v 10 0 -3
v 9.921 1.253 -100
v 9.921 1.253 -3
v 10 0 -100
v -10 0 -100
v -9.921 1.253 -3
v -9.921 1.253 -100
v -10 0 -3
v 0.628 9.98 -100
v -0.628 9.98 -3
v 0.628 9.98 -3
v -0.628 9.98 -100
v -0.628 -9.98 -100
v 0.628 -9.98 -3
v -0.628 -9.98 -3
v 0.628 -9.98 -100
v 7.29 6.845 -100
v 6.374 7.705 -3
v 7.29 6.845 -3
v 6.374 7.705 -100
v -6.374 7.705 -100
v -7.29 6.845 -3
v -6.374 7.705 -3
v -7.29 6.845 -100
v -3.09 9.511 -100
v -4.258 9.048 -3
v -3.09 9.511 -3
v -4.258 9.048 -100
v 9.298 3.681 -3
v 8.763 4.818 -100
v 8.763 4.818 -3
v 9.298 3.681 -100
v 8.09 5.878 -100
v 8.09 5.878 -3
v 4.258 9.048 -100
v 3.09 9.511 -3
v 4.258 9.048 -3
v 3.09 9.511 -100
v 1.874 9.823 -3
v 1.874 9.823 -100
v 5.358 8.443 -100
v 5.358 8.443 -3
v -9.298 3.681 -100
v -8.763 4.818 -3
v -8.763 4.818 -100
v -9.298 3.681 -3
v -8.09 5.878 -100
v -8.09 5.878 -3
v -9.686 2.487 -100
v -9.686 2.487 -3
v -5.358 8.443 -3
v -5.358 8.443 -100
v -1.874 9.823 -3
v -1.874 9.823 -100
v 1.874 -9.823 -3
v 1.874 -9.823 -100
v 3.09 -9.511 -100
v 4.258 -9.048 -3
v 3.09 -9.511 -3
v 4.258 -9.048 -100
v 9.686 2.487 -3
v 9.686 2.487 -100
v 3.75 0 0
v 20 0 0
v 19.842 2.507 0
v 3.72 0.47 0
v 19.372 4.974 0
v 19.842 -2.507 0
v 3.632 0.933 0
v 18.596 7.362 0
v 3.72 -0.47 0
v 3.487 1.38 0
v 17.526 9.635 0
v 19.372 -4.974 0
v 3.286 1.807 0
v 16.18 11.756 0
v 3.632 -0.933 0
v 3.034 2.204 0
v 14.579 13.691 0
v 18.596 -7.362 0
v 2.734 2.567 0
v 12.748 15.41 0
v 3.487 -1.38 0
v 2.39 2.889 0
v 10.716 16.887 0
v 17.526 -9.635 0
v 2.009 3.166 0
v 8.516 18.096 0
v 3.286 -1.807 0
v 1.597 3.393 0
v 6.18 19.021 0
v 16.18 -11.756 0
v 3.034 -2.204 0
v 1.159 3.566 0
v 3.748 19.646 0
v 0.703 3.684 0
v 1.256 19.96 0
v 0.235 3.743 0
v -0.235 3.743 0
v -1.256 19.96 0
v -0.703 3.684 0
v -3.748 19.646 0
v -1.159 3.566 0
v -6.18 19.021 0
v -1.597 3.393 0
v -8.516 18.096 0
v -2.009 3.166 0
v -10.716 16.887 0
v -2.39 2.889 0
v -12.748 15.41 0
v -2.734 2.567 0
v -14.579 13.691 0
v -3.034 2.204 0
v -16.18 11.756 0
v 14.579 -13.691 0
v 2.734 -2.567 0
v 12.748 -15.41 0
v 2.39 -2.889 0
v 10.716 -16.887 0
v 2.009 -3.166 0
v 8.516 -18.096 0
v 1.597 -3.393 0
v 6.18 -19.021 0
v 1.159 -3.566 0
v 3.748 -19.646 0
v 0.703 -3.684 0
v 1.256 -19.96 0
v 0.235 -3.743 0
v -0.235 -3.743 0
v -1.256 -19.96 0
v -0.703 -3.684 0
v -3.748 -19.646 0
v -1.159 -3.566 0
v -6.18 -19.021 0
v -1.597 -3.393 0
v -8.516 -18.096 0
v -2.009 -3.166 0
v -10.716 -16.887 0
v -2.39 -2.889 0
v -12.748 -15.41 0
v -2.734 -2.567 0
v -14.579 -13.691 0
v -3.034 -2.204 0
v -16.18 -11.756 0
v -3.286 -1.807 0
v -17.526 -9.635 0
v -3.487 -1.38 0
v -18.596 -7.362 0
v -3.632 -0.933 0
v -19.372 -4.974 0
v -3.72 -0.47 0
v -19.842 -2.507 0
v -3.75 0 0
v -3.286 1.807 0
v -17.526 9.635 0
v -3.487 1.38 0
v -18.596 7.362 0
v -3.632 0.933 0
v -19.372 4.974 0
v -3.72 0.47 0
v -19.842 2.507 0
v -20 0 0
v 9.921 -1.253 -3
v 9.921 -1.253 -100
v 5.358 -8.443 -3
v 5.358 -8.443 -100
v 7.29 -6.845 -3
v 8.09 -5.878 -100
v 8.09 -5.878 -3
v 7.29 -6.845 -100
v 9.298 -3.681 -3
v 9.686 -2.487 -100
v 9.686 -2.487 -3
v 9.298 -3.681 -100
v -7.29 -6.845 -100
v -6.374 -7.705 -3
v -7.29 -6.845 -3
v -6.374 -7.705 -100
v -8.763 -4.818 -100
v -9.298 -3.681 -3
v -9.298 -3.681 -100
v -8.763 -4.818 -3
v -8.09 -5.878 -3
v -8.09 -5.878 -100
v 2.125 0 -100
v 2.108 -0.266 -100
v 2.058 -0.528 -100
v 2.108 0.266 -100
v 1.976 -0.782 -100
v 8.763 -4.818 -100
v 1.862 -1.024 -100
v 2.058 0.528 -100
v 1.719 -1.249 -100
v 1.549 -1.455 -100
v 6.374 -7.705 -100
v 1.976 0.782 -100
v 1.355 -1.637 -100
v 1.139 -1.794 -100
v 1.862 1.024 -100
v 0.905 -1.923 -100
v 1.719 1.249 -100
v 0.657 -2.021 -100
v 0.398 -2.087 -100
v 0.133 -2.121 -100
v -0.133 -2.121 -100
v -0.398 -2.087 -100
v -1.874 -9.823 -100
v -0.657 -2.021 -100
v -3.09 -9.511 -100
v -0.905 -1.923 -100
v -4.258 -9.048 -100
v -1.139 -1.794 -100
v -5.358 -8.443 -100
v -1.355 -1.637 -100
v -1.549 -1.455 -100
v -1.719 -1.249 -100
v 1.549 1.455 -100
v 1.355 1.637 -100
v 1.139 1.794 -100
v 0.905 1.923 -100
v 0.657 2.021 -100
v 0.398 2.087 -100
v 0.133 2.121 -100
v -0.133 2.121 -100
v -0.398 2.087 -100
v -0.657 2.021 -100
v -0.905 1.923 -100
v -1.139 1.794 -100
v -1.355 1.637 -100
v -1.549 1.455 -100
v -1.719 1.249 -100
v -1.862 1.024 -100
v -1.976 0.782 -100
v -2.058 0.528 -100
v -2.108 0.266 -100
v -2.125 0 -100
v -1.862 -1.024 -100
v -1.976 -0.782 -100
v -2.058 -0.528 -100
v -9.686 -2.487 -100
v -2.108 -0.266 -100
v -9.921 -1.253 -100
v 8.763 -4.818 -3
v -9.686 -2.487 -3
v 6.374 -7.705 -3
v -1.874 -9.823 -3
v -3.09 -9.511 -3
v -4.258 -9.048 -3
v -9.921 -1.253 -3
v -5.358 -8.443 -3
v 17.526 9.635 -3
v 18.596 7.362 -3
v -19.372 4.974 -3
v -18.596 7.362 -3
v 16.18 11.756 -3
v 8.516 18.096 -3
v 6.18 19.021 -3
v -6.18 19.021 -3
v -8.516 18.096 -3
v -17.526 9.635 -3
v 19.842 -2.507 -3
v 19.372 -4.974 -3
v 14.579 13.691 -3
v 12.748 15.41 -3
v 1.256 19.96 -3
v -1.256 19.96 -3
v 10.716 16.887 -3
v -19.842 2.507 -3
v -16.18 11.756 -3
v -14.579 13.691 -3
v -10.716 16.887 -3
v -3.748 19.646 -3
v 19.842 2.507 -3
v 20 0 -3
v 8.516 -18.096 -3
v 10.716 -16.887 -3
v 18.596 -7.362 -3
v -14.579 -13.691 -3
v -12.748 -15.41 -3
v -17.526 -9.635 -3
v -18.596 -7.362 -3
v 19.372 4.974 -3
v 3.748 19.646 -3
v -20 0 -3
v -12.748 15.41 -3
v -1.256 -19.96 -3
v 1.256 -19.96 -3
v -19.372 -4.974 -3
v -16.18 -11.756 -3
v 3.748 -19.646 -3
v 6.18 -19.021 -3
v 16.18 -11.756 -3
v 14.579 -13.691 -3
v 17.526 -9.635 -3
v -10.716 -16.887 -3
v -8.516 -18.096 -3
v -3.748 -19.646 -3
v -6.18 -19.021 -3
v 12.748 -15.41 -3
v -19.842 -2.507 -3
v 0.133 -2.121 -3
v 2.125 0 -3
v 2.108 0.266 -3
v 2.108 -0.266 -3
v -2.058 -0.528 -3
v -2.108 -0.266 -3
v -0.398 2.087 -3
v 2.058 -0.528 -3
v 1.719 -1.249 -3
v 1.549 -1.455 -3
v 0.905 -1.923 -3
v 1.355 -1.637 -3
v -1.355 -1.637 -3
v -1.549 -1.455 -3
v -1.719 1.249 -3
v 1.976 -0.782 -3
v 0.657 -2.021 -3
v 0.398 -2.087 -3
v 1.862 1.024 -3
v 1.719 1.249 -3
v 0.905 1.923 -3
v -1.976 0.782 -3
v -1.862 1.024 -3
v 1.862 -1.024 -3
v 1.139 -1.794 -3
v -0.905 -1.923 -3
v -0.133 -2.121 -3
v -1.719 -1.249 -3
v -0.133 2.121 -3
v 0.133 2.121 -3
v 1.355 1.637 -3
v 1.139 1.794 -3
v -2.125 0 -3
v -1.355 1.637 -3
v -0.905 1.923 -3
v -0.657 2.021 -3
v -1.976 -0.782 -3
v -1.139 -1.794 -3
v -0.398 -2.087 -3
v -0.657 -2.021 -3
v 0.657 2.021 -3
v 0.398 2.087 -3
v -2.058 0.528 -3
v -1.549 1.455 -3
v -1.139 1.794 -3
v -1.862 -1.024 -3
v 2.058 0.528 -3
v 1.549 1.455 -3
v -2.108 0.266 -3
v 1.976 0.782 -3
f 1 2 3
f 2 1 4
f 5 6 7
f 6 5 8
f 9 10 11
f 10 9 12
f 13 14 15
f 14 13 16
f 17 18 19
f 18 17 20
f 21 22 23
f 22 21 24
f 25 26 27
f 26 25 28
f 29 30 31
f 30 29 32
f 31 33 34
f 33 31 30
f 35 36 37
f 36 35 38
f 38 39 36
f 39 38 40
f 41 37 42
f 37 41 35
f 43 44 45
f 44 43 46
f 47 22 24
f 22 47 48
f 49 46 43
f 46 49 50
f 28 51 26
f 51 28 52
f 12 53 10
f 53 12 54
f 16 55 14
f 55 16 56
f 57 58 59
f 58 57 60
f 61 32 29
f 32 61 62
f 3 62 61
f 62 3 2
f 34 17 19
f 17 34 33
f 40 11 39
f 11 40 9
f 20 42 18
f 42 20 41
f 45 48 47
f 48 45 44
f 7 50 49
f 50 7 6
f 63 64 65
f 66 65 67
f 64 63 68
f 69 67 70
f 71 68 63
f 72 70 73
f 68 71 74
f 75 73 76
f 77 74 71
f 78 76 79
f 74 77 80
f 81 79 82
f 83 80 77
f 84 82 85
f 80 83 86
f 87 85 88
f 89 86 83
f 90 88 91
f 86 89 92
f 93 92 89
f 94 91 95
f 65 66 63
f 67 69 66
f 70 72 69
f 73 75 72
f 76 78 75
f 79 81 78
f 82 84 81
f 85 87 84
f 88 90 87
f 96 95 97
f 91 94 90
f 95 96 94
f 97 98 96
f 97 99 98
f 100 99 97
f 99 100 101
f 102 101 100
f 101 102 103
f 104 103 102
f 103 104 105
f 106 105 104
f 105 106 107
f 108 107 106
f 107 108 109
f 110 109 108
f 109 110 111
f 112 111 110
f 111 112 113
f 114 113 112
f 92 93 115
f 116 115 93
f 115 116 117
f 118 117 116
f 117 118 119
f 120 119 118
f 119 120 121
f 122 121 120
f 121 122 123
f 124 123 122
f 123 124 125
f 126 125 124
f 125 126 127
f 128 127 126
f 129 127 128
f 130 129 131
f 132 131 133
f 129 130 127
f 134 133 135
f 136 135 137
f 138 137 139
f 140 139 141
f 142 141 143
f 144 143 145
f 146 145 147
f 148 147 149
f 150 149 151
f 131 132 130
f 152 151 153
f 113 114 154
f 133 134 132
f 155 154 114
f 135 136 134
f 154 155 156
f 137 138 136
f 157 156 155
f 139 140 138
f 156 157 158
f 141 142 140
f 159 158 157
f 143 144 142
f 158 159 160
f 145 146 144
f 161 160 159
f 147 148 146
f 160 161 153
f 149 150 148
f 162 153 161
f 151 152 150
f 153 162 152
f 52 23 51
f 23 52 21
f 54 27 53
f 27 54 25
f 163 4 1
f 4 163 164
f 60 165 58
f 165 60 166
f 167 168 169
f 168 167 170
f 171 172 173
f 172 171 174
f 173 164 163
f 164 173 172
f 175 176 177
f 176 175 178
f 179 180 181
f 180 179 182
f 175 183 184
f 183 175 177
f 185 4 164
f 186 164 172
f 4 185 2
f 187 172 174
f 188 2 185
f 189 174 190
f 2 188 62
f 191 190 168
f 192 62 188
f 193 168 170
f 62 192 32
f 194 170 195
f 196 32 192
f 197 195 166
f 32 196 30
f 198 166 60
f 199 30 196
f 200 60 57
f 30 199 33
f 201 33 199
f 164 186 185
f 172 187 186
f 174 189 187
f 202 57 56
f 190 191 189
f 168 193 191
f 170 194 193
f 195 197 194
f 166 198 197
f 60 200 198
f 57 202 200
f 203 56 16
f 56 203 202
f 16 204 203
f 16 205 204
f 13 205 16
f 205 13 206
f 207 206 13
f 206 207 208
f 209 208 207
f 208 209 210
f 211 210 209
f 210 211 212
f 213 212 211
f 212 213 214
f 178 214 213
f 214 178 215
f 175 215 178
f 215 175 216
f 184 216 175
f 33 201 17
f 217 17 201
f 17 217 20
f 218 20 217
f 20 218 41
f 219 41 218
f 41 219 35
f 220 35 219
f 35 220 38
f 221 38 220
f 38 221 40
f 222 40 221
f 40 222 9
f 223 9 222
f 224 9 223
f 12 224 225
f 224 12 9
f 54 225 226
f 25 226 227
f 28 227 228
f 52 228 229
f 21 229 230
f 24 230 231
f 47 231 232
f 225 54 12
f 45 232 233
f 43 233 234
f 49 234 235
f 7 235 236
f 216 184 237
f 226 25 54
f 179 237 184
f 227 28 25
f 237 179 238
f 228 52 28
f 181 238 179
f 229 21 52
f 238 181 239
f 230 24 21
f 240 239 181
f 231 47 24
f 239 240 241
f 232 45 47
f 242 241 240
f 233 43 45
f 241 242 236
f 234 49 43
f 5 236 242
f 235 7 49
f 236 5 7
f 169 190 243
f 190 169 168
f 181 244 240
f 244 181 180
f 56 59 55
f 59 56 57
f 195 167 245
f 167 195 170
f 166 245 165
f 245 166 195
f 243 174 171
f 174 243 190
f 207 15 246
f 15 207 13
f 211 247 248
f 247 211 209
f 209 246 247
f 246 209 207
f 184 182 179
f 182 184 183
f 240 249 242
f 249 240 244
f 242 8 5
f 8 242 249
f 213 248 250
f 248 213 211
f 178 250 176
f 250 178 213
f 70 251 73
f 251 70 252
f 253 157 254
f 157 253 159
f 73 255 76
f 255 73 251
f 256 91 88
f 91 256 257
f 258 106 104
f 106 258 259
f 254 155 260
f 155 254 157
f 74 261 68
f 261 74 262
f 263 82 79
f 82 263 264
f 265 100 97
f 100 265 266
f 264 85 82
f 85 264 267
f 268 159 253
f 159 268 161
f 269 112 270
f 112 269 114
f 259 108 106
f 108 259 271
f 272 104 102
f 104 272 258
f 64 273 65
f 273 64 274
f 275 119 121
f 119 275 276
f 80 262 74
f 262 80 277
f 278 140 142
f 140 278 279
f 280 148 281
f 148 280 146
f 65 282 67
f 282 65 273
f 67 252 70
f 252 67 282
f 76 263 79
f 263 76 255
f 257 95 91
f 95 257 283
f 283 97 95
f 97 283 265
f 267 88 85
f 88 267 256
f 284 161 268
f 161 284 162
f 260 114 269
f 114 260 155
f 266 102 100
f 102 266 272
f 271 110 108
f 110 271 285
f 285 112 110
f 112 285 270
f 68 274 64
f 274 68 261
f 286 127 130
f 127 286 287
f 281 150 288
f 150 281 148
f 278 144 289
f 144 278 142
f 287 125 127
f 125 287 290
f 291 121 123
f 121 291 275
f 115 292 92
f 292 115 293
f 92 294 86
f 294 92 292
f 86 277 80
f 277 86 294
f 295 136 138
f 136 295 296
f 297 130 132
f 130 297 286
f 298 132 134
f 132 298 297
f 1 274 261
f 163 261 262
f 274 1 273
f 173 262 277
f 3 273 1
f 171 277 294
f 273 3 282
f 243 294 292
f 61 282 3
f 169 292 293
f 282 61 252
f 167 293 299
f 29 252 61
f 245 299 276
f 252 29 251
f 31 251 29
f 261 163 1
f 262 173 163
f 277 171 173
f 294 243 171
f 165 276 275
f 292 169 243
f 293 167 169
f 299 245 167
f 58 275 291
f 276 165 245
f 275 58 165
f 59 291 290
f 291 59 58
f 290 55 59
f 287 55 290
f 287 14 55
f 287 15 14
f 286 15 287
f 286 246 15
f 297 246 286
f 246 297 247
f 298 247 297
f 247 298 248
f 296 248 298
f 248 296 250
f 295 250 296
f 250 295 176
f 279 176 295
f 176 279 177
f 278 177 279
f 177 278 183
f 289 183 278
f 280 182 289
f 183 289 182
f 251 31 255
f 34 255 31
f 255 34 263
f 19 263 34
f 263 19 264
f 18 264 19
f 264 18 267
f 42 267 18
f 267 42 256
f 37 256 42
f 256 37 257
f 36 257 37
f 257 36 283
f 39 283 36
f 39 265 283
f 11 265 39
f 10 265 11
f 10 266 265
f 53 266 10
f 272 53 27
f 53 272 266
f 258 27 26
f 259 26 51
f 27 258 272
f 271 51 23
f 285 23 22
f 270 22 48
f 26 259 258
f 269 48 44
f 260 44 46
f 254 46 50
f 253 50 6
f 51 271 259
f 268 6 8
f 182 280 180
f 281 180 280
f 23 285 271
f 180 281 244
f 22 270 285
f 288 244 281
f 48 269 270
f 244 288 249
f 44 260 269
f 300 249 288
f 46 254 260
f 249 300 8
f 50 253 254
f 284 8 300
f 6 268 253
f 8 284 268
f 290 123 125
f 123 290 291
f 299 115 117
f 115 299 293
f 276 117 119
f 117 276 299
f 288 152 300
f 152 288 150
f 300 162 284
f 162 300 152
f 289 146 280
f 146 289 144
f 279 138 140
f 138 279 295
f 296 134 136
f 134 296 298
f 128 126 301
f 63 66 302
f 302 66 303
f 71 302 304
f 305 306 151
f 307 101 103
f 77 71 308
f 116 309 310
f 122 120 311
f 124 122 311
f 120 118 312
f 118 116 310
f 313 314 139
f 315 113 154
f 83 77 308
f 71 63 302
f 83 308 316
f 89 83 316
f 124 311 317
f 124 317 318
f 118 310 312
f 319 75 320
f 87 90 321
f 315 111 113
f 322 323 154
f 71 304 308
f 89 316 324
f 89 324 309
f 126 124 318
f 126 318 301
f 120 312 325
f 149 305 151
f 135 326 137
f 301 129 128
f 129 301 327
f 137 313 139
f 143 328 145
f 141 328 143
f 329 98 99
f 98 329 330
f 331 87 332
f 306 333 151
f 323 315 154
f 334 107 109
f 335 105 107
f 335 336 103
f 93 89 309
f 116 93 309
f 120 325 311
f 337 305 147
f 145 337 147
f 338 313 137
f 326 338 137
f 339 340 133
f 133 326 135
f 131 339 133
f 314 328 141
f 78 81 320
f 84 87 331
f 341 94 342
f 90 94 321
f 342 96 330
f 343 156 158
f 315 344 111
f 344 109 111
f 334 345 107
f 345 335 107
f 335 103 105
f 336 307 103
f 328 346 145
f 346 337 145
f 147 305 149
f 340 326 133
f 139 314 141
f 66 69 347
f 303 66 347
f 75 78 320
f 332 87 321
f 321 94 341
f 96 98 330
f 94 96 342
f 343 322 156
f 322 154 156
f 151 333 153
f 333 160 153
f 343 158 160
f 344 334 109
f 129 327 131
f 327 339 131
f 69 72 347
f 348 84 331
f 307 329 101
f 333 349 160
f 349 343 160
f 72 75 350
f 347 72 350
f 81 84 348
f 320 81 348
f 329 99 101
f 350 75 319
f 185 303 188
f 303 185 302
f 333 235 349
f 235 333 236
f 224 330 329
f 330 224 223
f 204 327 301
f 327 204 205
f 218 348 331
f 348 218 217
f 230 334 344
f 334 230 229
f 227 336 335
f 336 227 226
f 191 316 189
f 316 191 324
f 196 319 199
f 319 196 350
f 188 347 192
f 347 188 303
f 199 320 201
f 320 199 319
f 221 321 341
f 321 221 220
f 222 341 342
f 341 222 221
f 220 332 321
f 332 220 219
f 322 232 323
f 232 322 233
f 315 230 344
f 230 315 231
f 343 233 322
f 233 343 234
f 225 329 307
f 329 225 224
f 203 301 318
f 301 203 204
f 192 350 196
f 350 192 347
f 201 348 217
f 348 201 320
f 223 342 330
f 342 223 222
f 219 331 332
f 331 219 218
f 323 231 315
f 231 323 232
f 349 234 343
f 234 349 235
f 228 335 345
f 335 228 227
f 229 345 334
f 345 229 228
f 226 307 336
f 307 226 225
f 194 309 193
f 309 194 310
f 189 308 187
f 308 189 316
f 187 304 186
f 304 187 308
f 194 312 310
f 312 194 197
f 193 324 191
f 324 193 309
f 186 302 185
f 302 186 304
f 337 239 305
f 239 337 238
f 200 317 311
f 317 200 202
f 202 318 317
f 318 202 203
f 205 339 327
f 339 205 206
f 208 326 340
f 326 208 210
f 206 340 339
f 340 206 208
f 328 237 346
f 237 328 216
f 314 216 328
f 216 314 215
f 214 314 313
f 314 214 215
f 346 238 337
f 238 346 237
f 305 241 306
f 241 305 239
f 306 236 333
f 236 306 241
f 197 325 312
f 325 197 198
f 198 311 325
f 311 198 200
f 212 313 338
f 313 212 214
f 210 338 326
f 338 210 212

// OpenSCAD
$fn = 50;


difference() {
	union() {
		translate(v = [0, 0, -100.0000000000]) {
			cylinder(h = 100, r = 10.0000000000);
		}
		translate(v = [0, 0, -3.0000000000]) {
			cylinder(h = 3, r = 20.0000000000);
		}
	}
	union() {
		translate(v = [0, 0, 0]) {
			rotate(a = [0, 0, 0]) {
				difference() {
					union() {
						#translate(v = [0, 0, -100.0000000000]) {
							cylinder(h = 100, r = 2.0000000000);
						}
						#translate(v = [0, 0, -3]) {
							cylinder(h = 3, r = 10.0000000000, r1 = 2.1250000000, r2 = 3.7500000000);
						}
						#translate(v = [0, 0, -100.0000000000]) {
							cylinder(h = 100, r = 2.1250000000);
						}
						#translate(v = [0, 0, -100.0000000000]) {
							cylinder(h = 100, r = 2.0000000000);
						}
					}
					union();
				}
			}
		}
	}
}
